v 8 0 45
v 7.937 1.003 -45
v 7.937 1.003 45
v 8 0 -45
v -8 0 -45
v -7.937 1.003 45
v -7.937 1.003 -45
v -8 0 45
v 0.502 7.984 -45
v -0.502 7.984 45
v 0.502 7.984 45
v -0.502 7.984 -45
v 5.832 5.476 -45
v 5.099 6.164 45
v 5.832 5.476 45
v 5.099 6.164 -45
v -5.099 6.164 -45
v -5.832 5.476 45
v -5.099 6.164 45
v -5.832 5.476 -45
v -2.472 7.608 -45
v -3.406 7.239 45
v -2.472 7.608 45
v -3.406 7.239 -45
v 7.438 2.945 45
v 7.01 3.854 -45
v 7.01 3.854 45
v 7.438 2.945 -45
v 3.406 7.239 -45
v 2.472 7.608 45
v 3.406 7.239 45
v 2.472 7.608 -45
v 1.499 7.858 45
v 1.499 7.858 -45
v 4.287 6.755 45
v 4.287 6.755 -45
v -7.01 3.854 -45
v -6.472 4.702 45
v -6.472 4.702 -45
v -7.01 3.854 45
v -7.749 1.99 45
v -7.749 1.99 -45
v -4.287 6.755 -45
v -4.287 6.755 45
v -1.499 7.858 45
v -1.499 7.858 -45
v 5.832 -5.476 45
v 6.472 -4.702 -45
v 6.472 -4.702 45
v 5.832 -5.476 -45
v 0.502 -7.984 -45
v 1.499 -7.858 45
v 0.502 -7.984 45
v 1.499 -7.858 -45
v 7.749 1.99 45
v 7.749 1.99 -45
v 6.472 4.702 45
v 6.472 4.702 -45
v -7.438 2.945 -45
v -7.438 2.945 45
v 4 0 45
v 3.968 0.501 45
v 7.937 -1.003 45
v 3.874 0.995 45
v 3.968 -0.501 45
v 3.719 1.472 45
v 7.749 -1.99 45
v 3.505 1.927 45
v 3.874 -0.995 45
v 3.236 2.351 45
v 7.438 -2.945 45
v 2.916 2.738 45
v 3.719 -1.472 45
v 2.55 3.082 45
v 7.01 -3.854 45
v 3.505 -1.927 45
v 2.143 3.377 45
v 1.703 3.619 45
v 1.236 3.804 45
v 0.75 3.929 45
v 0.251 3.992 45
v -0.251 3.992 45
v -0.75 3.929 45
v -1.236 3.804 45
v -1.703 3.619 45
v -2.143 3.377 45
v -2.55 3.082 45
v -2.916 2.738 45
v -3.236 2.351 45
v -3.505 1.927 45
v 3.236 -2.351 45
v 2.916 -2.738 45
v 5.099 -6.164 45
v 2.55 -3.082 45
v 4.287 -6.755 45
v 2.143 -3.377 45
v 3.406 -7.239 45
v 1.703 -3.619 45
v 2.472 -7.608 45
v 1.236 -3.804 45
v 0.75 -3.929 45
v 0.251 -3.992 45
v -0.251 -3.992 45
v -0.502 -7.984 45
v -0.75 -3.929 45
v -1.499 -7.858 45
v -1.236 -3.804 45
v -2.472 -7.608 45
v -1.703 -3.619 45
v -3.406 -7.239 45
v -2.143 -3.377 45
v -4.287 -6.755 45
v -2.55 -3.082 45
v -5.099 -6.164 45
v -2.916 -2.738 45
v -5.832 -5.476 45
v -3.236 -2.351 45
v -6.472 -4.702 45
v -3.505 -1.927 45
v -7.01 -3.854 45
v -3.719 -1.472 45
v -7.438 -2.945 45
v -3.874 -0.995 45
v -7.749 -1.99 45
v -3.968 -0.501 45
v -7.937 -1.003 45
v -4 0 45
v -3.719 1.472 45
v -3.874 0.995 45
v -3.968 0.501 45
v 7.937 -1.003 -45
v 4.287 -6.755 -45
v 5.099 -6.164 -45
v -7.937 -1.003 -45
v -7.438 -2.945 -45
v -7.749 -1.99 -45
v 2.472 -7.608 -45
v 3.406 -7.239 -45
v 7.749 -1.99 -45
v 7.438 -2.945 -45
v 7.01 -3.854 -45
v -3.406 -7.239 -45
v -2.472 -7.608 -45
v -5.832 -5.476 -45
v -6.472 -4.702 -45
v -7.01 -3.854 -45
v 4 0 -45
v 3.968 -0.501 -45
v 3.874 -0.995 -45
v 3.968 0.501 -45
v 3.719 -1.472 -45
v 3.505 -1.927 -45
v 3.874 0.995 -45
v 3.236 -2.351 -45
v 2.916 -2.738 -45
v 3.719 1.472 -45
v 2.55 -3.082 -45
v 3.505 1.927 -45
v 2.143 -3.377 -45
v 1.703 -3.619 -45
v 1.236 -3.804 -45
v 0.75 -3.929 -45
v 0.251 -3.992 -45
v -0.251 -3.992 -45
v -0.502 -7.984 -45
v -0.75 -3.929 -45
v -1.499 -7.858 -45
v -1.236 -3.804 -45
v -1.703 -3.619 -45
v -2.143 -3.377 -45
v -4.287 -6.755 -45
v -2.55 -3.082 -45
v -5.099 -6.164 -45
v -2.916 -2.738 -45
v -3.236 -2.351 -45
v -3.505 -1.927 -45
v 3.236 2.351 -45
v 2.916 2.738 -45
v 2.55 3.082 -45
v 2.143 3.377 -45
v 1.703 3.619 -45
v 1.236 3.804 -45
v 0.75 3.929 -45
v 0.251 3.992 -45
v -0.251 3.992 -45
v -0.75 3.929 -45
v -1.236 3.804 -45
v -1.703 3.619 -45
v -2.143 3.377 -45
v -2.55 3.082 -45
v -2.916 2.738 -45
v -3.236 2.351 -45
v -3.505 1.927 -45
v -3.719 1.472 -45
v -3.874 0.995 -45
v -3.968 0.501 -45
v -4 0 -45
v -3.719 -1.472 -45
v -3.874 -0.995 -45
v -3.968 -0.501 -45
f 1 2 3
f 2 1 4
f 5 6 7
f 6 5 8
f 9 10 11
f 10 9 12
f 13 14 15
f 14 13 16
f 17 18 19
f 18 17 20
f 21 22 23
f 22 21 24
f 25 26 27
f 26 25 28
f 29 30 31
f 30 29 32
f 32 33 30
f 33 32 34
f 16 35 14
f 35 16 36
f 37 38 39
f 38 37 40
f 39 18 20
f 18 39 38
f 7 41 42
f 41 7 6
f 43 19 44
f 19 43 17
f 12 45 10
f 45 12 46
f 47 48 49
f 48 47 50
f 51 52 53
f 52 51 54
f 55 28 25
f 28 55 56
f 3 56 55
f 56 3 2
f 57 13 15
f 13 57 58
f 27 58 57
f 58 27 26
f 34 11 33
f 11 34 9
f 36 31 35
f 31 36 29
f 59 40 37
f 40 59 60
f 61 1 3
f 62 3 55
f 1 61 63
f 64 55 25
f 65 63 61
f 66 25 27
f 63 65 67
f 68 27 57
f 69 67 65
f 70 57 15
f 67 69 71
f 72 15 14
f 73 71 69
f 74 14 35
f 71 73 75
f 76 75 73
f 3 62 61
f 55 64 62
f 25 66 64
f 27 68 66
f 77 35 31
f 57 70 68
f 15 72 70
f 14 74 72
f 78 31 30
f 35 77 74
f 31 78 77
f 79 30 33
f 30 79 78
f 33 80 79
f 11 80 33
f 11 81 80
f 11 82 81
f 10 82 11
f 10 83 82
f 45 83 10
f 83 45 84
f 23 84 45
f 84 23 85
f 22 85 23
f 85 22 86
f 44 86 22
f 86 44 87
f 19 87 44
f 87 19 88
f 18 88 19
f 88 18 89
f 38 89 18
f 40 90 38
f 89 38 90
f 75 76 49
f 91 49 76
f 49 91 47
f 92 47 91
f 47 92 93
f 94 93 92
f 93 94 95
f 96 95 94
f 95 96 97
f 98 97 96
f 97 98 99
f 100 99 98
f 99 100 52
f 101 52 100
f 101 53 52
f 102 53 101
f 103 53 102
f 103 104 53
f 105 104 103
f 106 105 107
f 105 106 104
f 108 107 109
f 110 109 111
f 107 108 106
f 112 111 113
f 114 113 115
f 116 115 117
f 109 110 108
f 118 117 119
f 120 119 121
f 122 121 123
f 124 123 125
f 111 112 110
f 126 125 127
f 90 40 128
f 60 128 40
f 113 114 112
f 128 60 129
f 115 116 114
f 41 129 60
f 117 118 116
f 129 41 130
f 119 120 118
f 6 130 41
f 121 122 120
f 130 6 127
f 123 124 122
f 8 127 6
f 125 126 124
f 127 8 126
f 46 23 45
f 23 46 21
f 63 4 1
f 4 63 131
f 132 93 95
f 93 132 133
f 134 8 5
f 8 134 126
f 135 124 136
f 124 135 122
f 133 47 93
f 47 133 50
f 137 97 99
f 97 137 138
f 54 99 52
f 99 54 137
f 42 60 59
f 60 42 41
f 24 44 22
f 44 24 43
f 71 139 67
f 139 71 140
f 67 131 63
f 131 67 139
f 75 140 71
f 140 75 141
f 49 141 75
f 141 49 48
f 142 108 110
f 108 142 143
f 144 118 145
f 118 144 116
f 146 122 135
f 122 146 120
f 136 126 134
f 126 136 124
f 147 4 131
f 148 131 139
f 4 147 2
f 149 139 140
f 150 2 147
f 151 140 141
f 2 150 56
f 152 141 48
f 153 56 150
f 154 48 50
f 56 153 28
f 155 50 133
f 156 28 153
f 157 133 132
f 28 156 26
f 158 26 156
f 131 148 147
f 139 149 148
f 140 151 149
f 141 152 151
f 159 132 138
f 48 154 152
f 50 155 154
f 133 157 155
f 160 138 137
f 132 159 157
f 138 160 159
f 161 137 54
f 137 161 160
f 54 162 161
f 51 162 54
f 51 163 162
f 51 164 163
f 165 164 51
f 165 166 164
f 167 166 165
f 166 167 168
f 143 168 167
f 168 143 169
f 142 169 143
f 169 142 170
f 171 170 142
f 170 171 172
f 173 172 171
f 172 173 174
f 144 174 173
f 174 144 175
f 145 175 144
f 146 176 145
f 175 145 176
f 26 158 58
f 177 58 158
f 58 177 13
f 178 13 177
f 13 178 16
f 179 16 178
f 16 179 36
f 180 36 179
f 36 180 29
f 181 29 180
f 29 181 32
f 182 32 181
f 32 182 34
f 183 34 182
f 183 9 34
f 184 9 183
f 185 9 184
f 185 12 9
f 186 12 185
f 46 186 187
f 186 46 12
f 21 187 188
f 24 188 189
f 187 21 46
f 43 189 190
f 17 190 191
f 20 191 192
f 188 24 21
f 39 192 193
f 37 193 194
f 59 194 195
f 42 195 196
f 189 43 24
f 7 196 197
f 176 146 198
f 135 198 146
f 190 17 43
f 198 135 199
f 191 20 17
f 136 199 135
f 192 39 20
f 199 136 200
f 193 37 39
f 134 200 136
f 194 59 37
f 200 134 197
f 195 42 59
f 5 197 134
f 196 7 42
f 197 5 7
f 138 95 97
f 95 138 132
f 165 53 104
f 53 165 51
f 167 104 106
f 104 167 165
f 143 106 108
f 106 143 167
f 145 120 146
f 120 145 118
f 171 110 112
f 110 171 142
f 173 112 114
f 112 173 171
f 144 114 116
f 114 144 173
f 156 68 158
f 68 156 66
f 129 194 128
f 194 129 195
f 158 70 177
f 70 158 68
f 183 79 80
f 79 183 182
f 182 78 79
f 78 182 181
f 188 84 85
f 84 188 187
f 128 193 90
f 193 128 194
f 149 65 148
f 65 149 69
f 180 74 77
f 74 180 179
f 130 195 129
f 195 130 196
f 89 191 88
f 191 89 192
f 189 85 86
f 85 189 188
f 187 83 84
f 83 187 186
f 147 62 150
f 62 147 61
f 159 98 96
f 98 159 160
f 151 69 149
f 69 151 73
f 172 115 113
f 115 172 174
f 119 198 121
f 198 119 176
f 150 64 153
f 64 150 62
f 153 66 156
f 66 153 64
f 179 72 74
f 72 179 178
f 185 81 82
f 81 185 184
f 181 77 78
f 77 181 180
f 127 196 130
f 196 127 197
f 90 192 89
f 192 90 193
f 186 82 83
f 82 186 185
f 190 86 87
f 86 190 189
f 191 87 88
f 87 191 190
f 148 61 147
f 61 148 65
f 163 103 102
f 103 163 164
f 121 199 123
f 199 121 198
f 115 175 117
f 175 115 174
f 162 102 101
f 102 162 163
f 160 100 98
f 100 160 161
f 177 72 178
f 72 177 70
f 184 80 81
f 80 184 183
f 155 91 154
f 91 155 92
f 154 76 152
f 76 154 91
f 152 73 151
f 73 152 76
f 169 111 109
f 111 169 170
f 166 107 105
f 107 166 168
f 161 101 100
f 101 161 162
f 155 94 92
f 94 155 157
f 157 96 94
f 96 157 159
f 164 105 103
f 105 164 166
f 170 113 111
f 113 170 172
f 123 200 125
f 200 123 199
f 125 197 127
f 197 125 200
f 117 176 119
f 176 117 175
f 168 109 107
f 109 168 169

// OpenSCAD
$fn = 50;


difference() {
	union() {
		translate(v = [0, 0, -45.0000000000]) {
			cylinder(h = 90, r = 8.0000000000);
		}
	}
	union() {
		translate(v = [0, 0, -100.0000000000]) {
			cylinder(h = 200, r = 4.0000000000);
		}
	}
}
